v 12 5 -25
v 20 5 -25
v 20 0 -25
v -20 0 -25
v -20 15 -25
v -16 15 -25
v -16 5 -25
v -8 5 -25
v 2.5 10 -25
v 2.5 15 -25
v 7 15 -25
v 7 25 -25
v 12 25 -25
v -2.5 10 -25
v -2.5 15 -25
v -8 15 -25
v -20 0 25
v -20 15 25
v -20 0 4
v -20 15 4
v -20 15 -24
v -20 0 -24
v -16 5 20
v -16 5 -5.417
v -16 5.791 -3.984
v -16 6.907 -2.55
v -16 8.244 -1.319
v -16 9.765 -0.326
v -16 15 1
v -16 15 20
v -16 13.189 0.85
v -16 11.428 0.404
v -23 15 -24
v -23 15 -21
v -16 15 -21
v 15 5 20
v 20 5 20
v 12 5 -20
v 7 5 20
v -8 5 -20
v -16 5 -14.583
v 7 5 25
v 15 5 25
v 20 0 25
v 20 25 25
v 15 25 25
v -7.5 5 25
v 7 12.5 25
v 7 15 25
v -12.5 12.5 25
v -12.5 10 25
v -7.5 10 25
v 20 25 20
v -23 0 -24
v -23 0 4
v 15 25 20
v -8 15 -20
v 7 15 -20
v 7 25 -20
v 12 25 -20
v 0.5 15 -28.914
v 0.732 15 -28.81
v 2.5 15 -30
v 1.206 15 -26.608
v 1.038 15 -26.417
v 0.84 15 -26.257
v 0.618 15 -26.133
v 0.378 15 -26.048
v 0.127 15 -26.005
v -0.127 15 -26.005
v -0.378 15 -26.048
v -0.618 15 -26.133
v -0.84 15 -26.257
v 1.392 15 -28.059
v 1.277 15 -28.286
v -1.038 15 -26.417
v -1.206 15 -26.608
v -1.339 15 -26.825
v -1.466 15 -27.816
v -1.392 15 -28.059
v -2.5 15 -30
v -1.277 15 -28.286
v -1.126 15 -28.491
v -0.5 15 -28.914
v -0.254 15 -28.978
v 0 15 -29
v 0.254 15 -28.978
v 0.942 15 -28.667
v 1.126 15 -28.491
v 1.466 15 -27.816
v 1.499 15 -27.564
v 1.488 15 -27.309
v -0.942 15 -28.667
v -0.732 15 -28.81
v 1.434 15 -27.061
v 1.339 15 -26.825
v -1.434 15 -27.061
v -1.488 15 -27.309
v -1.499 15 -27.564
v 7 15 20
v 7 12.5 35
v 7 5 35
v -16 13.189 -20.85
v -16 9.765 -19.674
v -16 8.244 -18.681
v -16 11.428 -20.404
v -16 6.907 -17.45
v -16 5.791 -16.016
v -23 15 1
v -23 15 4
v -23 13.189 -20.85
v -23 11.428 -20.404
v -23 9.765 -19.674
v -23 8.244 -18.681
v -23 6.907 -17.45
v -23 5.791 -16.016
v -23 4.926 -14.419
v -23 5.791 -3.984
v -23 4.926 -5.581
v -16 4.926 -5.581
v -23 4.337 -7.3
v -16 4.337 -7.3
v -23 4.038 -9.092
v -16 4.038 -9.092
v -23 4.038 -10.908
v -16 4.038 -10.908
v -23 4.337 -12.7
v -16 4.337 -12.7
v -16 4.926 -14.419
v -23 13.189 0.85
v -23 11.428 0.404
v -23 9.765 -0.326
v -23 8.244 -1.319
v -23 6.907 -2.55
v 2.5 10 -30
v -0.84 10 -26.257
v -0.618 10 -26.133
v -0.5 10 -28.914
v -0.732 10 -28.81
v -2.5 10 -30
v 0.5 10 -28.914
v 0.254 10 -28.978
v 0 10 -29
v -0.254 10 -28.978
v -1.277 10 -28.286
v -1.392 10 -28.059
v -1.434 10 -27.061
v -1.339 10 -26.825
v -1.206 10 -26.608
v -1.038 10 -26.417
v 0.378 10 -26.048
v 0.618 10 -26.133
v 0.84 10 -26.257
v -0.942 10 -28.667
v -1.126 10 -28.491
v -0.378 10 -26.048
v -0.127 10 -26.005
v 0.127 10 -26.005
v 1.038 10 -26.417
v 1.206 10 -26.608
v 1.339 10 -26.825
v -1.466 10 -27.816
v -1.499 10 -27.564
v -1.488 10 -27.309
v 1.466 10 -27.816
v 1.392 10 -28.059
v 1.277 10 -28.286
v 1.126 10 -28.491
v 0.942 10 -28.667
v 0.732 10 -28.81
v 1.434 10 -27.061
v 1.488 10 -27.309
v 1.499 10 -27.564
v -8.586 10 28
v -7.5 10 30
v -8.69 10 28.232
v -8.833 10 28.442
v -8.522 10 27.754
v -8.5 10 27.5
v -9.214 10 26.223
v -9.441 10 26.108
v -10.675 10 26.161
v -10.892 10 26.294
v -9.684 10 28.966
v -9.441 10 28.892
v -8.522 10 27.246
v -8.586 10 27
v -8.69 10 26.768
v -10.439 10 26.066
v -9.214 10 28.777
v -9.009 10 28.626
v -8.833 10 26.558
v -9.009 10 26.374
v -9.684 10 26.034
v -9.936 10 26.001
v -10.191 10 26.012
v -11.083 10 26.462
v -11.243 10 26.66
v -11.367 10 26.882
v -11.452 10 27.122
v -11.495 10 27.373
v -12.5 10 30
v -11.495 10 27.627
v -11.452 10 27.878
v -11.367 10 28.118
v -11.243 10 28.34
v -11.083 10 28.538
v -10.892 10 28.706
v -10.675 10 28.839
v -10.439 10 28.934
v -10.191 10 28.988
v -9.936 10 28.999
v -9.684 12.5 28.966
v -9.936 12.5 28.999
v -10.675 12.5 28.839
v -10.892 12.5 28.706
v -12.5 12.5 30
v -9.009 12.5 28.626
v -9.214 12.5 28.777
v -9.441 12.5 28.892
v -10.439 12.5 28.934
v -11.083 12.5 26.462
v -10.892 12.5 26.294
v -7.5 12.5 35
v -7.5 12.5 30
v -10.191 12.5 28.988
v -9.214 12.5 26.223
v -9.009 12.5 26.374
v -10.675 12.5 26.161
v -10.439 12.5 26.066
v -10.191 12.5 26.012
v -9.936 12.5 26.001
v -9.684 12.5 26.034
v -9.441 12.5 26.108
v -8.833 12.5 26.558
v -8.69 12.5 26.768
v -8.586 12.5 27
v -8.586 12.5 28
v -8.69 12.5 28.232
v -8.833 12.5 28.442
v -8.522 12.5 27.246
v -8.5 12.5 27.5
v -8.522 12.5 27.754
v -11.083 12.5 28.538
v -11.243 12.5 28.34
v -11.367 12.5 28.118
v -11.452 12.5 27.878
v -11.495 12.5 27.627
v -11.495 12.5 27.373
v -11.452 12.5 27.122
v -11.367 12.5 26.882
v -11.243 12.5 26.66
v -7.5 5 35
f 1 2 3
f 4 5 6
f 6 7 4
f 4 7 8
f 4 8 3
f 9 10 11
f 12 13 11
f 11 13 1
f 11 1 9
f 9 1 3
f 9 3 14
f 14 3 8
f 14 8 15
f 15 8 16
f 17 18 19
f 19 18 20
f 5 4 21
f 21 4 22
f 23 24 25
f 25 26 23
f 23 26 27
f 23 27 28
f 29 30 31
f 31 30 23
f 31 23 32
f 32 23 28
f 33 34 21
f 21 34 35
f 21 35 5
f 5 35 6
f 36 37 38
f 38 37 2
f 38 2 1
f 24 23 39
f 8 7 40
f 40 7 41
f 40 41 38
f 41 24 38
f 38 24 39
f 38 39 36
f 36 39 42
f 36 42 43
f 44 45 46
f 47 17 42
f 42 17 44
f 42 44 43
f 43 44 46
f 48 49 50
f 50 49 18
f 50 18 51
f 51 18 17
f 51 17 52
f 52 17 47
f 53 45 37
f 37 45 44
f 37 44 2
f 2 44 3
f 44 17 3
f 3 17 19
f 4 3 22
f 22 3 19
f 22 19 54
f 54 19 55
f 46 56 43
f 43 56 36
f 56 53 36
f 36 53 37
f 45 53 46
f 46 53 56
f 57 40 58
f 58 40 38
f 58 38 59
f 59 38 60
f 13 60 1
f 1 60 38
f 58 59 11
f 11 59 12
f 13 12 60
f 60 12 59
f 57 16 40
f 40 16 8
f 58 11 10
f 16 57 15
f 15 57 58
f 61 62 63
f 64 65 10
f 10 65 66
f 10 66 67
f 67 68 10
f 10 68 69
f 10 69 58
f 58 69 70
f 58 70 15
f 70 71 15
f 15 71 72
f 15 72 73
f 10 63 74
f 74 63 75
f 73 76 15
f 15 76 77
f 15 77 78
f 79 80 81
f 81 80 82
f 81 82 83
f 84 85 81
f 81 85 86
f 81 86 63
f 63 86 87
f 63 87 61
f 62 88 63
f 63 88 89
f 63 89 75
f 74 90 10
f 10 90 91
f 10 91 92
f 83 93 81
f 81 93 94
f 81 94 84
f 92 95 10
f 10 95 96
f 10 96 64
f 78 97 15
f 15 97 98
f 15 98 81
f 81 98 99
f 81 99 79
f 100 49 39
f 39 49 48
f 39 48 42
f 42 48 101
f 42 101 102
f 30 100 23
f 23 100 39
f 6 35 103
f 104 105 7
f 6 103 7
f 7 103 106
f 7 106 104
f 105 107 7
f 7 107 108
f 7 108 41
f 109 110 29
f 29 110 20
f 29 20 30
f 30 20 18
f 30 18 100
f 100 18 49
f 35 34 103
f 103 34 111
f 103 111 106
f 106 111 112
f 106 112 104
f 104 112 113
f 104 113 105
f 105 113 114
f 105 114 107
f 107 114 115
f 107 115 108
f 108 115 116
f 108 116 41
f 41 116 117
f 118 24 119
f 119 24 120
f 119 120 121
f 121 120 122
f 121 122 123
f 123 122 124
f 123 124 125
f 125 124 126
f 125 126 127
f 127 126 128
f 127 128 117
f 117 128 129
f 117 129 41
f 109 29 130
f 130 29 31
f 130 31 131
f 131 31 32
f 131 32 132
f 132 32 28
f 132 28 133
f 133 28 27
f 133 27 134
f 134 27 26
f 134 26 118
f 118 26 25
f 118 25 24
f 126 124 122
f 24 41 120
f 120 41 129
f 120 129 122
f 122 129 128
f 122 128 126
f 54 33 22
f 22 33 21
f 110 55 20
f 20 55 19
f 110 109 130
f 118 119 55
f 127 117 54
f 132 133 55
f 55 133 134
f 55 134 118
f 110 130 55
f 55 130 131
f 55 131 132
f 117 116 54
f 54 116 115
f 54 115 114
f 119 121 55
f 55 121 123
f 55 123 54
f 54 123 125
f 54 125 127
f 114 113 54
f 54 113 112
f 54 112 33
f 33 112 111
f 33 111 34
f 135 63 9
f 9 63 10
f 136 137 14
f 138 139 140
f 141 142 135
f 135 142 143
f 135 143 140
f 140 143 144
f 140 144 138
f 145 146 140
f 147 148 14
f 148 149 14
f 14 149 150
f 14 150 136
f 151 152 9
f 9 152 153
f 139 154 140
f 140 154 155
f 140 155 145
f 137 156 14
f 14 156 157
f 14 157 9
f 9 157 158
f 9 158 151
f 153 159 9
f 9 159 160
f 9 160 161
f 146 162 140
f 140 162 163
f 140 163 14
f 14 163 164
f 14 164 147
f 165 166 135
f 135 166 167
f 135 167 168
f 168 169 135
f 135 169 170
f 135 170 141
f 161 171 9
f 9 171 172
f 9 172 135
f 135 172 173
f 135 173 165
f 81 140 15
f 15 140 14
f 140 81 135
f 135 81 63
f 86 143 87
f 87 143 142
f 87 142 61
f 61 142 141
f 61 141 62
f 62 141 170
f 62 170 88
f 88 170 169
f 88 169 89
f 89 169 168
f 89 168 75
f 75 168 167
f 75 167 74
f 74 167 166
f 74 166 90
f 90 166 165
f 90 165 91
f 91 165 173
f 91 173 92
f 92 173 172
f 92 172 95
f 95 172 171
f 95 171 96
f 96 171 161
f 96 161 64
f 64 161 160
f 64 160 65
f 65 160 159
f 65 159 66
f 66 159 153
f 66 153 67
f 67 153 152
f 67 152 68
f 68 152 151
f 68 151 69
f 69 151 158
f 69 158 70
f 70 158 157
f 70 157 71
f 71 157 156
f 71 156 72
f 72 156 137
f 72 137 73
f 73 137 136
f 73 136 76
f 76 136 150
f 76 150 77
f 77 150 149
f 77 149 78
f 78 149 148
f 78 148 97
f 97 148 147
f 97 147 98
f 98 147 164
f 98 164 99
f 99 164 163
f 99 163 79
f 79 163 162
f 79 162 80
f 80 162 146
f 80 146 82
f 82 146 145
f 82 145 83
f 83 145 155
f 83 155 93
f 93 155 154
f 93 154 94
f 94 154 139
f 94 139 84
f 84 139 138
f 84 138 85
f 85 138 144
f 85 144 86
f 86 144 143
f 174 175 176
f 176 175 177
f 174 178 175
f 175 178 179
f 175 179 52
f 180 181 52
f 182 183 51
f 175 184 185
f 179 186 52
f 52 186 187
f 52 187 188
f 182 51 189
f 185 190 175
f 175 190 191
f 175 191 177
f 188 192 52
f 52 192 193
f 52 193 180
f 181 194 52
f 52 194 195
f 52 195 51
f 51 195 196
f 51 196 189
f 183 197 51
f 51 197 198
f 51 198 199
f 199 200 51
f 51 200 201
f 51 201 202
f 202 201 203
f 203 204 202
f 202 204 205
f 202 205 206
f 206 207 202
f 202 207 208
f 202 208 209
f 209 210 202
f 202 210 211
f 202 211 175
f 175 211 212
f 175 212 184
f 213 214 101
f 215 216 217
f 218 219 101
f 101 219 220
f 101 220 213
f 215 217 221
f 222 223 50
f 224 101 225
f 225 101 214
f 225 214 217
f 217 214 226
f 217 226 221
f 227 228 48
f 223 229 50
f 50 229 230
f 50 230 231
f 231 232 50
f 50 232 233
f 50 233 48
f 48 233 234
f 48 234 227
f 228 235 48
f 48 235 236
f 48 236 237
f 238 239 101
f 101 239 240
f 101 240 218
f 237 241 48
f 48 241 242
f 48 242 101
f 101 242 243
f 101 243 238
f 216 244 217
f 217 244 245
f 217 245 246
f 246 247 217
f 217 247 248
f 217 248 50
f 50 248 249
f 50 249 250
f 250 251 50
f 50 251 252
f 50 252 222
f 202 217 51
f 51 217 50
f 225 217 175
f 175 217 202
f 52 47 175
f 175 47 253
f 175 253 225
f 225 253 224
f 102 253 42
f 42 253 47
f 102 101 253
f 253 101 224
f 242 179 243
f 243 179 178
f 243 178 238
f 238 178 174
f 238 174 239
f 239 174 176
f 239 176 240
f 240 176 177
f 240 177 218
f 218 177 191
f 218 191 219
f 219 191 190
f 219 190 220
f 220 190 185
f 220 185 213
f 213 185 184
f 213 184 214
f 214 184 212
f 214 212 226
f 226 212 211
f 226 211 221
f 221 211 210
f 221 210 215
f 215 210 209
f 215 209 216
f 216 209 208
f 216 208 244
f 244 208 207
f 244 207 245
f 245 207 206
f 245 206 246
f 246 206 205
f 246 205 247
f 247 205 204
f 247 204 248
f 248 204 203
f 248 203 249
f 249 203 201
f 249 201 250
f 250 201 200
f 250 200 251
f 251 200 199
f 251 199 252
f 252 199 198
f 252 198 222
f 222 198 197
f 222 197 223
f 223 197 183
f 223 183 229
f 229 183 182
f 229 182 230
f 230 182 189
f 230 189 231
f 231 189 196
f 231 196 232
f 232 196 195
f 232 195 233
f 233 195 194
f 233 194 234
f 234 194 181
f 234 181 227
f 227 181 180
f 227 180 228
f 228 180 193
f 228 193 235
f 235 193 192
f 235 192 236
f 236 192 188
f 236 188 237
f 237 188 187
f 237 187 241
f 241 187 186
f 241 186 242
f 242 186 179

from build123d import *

# Parameters (mm, degrees)
SKETCH1_W            = 40
SKETCH1_H            = 50
BOSS_EXTRUDE1_DEPTH  = 5
SKETCH3_W            = 5
SKETCH3_H            = 5
BOSS_EXTRUDE5_DEPTH  = 20
SKETCH3_3_W          = 15
SKETCH3_3_H          = 5
BOSS_EXTRUDE6_DEPTH  = 10
CUT_EXTRUDE3_DEPTH   = 4
BOSS_EXTRUDE9_START  = 3
BOSS_EXTRUDE9_DEPTH  = 3
SKETCH12_W           = 5
SKETCH12_H           = 5
BOSS_EXTRUDE10_DEPTH = 5
SKETCH13_R           = 1.5
CUT_EXTRUDE4_DEPTH   = 5
SKETCH16_W           = 5
SKETCH16_H           = 2.5
BOSS_EXTRUDE13_DEPTH = 5
BOSS_EXTRUDE14_DEPTH = 10
SKETCH17_R           = 1.5
CUT_EXTRUDE6_DEPTH   = 2.5


with BuildPart() as part:
    # Sketch1 → Boss-Extrude1 (new body)
    with BuildSketch(Plane(origin=(0, 0, 0), x_dir=(1, 0, 0), z_dir=(0, 1, 0))):
        Rectangle(SKETCH1_W, SKETCH1_H)
    extrude(amount=BOSS_EXTRUDE1_DEPTH)

    # Sketch3 → Boss-Extrude5 (add)
    with BuildSketch(Plane(origin=(0, 5, 0), x_dir=(1, 0, 0), z_dir=(0, 1, 0))):
        with Locations((9.5, 22.5)):
            Rectangle(SKETCH3_W, SKETCH3_H)
        with Locations((17.5, -22.5)):
            Rectangle(SKETCH3_W, SKETCH3_H)
    extrude(amount=BOSS_EXTRUDE5_DEPTH)

    # Sketch3<3> → Boss-Extrude6 (add)
    with BuildSketch(Plane(origin=(0, 5, 0), x_dir=(1, 0, 0), z_dir=(0, 1, 0))):
        with Locations((-0.5, 22.5)):
            Rectangle(SKETCH3_3_W, SKETCH3_3_H)
        Polygon((-16, -20), (-16, 25), (-20, 25), (-20, -25), (7, -25), (7, -20), align=None)
    extrude(amount=BOSS_EXTRUDE6_DEPTH)

    # Sketch8 → Cut-Extrude3 (cut)
    with BuildSketch(Plane.ZY.offset(20)):
        with BuildLine():
            Line((1, 15), (-21, 15))
            ThreePointArc((-21, 15), (-10, 4), (1, 15))
        make_face()
    extrude(amount=-CUT_EXTRUDE3_DEPTH, mode=Mode.SUBTRACT)

    # Sketch10 → Boss-Extrude9 (add)
    with BuildSketch(Plane.ZY.offset(20).offset(BOSS_EXTRUDE9_START)):
        with BuildLine():
            Line((1, 15), (4, 15))
            Line((4, 15), (4, 0))
            Line((4, 0), (-24, 0))
            Line((-24, 0), (-24, 15))
            Line((-24, 15), (-21, 15))
            ThreePointArc((-21, 15), (-10, 4), (1, 15))
        make_face()
    extrude(amount=-BOSS_EXTRUDE9_DEPTH)

    # Sketch12 → Boss-Extrude10 (add)
    with BuildSketch(Plane(origin=(0, 0, -25), x_dir=(-1, 0, 0), z_dir=(0, 0, -1))):
        with Locations((0, 12.5)):
            Rectangle(SKETCH12_W, SKETCH12_H)
    extrude(amount=BOSS_EXTRUDE10_DEPTH)

    # Sketch13 → Cut-Extrude4 (cut)
    with BuildSketch(Plane.XZ.offset(-10)):
        with Locations((0, -27.5)):
            Circle(SKETCH13_R)
    extrude(amount=-CUT_EXTRUDE4_DEPTH, mode=Mode.SUBTRACT)

    # Sketch16 → Boss-Extrude13 (add)
    with BuildSketch(Plane.XY.offset(25)):
        with Locations((-10, 11.25)):
            Rectangle(SKETCH16_W, SKETCH16_H)
    extrude(amount=BOSS_EXTRUDE13_DEPTH)

    # Sketch16<3> → Boss-Extrude14 (add)
    with BuildSketch(Plane.XY.offset(25)):
        Polygon((-7.5, 5), (7, 5), (7, 12.5), (-7.5, 12.5), (-7.5, 10), align=None)
    extrude(amount=BOSS_EXTRUDE14_DEPTH)

    # Sketch17 → Cut-Extrude6 (cut)
    with BuildSketch(Plane.XZ.offset(-10)):
        with Locations((-10, 27.5)):
            Circle(SKETCH17_R)
    extrude(amount=-CUT_EXTRUDE6_DEPTH, mode=Mode.SUBTRACT)


solid = part.part
